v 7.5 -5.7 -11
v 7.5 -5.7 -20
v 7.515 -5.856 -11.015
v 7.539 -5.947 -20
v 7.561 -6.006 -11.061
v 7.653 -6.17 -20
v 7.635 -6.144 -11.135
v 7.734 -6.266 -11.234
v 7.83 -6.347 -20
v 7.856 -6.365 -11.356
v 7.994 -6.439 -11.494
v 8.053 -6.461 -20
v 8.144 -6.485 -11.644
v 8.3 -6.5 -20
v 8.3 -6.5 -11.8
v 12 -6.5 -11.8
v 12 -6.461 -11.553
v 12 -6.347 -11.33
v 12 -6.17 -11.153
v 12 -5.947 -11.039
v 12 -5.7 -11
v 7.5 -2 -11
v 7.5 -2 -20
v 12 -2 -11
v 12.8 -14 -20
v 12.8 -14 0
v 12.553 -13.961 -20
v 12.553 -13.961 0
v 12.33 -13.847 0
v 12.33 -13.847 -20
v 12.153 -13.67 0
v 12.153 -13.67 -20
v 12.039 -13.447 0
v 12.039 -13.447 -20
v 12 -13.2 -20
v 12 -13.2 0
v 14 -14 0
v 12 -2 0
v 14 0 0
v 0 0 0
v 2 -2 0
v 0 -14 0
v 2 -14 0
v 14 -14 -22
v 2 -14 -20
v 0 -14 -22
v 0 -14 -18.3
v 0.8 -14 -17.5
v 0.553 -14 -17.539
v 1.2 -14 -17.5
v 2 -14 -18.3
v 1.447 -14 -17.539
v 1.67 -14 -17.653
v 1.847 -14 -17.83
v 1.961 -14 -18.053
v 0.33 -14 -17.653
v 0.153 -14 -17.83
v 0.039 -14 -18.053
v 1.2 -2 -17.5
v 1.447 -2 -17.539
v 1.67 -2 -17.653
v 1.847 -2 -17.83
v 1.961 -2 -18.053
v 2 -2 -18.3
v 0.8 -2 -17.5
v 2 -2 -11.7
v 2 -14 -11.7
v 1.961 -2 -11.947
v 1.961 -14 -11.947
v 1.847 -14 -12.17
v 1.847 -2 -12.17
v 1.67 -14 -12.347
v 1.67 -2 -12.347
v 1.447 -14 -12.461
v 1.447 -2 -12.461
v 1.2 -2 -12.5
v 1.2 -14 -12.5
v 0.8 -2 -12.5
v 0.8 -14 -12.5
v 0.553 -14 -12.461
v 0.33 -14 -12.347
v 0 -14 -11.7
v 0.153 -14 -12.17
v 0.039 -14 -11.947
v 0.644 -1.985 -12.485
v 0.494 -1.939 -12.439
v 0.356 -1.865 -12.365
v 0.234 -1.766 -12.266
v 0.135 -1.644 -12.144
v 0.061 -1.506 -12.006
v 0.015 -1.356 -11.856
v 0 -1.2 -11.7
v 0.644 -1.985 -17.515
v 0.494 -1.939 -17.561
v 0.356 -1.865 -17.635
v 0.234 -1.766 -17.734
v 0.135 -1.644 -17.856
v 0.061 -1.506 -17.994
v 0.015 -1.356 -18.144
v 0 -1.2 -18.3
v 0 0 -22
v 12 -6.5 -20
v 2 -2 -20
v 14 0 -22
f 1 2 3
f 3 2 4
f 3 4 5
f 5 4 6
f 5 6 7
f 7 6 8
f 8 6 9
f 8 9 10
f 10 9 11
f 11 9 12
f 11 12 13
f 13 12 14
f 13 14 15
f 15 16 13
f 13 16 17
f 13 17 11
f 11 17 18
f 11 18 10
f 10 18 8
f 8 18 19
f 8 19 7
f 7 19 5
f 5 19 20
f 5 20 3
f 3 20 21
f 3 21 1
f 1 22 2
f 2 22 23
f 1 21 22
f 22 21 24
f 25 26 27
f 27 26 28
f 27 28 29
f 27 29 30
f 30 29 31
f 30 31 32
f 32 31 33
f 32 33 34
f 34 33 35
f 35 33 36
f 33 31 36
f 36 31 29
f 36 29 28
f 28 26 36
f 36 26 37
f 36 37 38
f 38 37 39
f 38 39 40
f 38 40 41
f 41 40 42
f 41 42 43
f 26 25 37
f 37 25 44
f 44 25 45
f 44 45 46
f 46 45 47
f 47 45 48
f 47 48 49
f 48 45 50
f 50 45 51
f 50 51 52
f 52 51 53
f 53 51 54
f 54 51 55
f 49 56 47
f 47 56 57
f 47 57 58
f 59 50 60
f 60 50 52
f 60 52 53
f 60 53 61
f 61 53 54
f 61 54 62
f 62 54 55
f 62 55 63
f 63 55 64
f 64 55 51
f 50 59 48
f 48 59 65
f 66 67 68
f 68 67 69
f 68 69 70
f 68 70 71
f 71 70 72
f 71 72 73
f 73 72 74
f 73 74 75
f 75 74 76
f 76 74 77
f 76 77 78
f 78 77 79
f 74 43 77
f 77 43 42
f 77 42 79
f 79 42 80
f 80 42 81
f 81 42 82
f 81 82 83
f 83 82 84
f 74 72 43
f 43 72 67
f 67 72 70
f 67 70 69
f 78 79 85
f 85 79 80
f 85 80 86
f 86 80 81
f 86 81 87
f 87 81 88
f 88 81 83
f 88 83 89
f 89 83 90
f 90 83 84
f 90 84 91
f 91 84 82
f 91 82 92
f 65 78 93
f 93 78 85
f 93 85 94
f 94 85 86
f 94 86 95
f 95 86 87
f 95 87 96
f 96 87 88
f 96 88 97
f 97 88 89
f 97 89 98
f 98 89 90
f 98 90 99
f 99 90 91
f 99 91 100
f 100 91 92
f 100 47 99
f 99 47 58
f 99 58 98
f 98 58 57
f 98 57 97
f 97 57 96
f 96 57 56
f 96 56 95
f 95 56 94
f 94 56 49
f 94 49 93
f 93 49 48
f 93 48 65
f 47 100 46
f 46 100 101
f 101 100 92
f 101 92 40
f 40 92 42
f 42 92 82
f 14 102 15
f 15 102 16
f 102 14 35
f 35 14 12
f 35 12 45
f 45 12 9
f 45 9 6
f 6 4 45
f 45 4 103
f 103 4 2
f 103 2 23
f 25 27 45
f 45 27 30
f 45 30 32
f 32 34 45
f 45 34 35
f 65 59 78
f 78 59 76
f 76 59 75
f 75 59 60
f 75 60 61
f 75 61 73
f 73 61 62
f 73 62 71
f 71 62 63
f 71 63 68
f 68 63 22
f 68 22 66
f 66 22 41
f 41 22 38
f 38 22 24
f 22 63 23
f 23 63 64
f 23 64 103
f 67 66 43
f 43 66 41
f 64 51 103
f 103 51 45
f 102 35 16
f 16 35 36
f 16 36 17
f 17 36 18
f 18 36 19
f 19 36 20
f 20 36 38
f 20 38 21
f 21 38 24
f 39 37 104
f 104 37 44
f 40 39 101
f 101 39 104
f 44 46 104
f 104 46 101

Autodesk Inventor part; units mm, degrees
ref_plane "YZ Plane" through (0, 0, 0) normal (1, 0, 0) x (0, 1, 0)
ref_plane "XZ Plane" through (0, 0, 0) normal (0, 1, 0) x (-1, 0, 0)
ref_plane "XY Plane" through (0, 0, 0) normal (0, 0, 1) x (1, 0, 0)
sketch "Sketch1" plane through (0, 0, 0) normal (0, 0, 1) x (1, 0, 0)
  line L0 (0, 0) -> (14, 0)
  line L1 (14, 0) -> (14, -14)
  line L2 (14, -14) -> (0, -14)
  line L3 (0, -14) -> (0, 0)
  dimension "d0" = 14
  dimension "d1" = 14
extrude "Extrusion1" add sketch "Sketch1" against normal blind 22
sketch "Sketch2" plane through (0, 0, 0) normal (0, 0, 1) x (1, 0, 0)
  line L0 (2, -2) -> (12, -2)
  line L1 (12, -2) -> (12, -22)
  line L2 (12, -22) -> (2, -22)
  line L3 (2, -22) -> (2, -2)
  point P0 (0, 0)
  dimension "d4" = 10
  dimension "d5" = 20
extrude "Extrusion2" cut sketch "Sketch2" against normal blind 20
sketch "Sketch8" plane through (0, -14, 0) normal (-1, 0, 0) x (0, 0, 1)
  point P0 (0, 14)
sketch "Sketch9" plane through (0, -14, 0) normal (-1, 0, 0) x (0, 0, 1)
  point P0 (0, 14)
sketch "Sketch11" plane through (0, -14, 0) normal (-1, 0, 0) x (0, 0, 1)
  point P0 (0, 14)
sketch "Sketch14" plane through (0, -14, 0) normal (-1, 0, 0) x (0, 0, 1)
  point P0 (0, 14)
sketch "Sketch15" plane through (0, -14, 0) normal (-1, 0, 0) x (0, 0, 1)
  point P0 (0, 14)
sketch "Sketch16" plane through (0, -14, 0) normal (-1, 0, 0) x (0, 0, 1)
  line L0 (-12.5, 12) -> (-17.5, 12)
  line L1 (-17.5, 12) -> (-17.5, 0)
  line L2 (-17.5, 0) -> (-12.5, 0)
  line L3 (-12.5, 0) -> (-12.5, 12)
  point P0 (0, 14)
  dimension "d30" = 5
  dimension "d31" = 12
extrude "Extrusion10" cut sketch "Sketch16" against normal blind 2
sketch "Sketch17" plane through (0, 0, -20) normal (0, 0, 1) x (1, 0, 0)
  line L0 (12, -2) -> (7.5, -2)
  line L1 (7.5, -2) -> (7.5, -6.5)
  line L2 (7.5, -6.5) -> (12, -6.5)
  line L3 (12, -6.5) -> (12, -2)
  point P0 (0, 0)
  dimension "d34" = 4.5
  dimension "d35" = 4.5
extrude "Extrusion11" add sketch "Sketch17" along normal blind 9
fillet "Fillet1" radius 0.8 8 edges at (0, -8, -12.5) (2, -8, -12.5) (0, -2, -15) (0, -8, -17.5) (2, -8, -17.5) (12, -14, -10) (7.5, -6.5, -15.5) (9.75, -6.5, -11)
properties part number "housing_v07"
